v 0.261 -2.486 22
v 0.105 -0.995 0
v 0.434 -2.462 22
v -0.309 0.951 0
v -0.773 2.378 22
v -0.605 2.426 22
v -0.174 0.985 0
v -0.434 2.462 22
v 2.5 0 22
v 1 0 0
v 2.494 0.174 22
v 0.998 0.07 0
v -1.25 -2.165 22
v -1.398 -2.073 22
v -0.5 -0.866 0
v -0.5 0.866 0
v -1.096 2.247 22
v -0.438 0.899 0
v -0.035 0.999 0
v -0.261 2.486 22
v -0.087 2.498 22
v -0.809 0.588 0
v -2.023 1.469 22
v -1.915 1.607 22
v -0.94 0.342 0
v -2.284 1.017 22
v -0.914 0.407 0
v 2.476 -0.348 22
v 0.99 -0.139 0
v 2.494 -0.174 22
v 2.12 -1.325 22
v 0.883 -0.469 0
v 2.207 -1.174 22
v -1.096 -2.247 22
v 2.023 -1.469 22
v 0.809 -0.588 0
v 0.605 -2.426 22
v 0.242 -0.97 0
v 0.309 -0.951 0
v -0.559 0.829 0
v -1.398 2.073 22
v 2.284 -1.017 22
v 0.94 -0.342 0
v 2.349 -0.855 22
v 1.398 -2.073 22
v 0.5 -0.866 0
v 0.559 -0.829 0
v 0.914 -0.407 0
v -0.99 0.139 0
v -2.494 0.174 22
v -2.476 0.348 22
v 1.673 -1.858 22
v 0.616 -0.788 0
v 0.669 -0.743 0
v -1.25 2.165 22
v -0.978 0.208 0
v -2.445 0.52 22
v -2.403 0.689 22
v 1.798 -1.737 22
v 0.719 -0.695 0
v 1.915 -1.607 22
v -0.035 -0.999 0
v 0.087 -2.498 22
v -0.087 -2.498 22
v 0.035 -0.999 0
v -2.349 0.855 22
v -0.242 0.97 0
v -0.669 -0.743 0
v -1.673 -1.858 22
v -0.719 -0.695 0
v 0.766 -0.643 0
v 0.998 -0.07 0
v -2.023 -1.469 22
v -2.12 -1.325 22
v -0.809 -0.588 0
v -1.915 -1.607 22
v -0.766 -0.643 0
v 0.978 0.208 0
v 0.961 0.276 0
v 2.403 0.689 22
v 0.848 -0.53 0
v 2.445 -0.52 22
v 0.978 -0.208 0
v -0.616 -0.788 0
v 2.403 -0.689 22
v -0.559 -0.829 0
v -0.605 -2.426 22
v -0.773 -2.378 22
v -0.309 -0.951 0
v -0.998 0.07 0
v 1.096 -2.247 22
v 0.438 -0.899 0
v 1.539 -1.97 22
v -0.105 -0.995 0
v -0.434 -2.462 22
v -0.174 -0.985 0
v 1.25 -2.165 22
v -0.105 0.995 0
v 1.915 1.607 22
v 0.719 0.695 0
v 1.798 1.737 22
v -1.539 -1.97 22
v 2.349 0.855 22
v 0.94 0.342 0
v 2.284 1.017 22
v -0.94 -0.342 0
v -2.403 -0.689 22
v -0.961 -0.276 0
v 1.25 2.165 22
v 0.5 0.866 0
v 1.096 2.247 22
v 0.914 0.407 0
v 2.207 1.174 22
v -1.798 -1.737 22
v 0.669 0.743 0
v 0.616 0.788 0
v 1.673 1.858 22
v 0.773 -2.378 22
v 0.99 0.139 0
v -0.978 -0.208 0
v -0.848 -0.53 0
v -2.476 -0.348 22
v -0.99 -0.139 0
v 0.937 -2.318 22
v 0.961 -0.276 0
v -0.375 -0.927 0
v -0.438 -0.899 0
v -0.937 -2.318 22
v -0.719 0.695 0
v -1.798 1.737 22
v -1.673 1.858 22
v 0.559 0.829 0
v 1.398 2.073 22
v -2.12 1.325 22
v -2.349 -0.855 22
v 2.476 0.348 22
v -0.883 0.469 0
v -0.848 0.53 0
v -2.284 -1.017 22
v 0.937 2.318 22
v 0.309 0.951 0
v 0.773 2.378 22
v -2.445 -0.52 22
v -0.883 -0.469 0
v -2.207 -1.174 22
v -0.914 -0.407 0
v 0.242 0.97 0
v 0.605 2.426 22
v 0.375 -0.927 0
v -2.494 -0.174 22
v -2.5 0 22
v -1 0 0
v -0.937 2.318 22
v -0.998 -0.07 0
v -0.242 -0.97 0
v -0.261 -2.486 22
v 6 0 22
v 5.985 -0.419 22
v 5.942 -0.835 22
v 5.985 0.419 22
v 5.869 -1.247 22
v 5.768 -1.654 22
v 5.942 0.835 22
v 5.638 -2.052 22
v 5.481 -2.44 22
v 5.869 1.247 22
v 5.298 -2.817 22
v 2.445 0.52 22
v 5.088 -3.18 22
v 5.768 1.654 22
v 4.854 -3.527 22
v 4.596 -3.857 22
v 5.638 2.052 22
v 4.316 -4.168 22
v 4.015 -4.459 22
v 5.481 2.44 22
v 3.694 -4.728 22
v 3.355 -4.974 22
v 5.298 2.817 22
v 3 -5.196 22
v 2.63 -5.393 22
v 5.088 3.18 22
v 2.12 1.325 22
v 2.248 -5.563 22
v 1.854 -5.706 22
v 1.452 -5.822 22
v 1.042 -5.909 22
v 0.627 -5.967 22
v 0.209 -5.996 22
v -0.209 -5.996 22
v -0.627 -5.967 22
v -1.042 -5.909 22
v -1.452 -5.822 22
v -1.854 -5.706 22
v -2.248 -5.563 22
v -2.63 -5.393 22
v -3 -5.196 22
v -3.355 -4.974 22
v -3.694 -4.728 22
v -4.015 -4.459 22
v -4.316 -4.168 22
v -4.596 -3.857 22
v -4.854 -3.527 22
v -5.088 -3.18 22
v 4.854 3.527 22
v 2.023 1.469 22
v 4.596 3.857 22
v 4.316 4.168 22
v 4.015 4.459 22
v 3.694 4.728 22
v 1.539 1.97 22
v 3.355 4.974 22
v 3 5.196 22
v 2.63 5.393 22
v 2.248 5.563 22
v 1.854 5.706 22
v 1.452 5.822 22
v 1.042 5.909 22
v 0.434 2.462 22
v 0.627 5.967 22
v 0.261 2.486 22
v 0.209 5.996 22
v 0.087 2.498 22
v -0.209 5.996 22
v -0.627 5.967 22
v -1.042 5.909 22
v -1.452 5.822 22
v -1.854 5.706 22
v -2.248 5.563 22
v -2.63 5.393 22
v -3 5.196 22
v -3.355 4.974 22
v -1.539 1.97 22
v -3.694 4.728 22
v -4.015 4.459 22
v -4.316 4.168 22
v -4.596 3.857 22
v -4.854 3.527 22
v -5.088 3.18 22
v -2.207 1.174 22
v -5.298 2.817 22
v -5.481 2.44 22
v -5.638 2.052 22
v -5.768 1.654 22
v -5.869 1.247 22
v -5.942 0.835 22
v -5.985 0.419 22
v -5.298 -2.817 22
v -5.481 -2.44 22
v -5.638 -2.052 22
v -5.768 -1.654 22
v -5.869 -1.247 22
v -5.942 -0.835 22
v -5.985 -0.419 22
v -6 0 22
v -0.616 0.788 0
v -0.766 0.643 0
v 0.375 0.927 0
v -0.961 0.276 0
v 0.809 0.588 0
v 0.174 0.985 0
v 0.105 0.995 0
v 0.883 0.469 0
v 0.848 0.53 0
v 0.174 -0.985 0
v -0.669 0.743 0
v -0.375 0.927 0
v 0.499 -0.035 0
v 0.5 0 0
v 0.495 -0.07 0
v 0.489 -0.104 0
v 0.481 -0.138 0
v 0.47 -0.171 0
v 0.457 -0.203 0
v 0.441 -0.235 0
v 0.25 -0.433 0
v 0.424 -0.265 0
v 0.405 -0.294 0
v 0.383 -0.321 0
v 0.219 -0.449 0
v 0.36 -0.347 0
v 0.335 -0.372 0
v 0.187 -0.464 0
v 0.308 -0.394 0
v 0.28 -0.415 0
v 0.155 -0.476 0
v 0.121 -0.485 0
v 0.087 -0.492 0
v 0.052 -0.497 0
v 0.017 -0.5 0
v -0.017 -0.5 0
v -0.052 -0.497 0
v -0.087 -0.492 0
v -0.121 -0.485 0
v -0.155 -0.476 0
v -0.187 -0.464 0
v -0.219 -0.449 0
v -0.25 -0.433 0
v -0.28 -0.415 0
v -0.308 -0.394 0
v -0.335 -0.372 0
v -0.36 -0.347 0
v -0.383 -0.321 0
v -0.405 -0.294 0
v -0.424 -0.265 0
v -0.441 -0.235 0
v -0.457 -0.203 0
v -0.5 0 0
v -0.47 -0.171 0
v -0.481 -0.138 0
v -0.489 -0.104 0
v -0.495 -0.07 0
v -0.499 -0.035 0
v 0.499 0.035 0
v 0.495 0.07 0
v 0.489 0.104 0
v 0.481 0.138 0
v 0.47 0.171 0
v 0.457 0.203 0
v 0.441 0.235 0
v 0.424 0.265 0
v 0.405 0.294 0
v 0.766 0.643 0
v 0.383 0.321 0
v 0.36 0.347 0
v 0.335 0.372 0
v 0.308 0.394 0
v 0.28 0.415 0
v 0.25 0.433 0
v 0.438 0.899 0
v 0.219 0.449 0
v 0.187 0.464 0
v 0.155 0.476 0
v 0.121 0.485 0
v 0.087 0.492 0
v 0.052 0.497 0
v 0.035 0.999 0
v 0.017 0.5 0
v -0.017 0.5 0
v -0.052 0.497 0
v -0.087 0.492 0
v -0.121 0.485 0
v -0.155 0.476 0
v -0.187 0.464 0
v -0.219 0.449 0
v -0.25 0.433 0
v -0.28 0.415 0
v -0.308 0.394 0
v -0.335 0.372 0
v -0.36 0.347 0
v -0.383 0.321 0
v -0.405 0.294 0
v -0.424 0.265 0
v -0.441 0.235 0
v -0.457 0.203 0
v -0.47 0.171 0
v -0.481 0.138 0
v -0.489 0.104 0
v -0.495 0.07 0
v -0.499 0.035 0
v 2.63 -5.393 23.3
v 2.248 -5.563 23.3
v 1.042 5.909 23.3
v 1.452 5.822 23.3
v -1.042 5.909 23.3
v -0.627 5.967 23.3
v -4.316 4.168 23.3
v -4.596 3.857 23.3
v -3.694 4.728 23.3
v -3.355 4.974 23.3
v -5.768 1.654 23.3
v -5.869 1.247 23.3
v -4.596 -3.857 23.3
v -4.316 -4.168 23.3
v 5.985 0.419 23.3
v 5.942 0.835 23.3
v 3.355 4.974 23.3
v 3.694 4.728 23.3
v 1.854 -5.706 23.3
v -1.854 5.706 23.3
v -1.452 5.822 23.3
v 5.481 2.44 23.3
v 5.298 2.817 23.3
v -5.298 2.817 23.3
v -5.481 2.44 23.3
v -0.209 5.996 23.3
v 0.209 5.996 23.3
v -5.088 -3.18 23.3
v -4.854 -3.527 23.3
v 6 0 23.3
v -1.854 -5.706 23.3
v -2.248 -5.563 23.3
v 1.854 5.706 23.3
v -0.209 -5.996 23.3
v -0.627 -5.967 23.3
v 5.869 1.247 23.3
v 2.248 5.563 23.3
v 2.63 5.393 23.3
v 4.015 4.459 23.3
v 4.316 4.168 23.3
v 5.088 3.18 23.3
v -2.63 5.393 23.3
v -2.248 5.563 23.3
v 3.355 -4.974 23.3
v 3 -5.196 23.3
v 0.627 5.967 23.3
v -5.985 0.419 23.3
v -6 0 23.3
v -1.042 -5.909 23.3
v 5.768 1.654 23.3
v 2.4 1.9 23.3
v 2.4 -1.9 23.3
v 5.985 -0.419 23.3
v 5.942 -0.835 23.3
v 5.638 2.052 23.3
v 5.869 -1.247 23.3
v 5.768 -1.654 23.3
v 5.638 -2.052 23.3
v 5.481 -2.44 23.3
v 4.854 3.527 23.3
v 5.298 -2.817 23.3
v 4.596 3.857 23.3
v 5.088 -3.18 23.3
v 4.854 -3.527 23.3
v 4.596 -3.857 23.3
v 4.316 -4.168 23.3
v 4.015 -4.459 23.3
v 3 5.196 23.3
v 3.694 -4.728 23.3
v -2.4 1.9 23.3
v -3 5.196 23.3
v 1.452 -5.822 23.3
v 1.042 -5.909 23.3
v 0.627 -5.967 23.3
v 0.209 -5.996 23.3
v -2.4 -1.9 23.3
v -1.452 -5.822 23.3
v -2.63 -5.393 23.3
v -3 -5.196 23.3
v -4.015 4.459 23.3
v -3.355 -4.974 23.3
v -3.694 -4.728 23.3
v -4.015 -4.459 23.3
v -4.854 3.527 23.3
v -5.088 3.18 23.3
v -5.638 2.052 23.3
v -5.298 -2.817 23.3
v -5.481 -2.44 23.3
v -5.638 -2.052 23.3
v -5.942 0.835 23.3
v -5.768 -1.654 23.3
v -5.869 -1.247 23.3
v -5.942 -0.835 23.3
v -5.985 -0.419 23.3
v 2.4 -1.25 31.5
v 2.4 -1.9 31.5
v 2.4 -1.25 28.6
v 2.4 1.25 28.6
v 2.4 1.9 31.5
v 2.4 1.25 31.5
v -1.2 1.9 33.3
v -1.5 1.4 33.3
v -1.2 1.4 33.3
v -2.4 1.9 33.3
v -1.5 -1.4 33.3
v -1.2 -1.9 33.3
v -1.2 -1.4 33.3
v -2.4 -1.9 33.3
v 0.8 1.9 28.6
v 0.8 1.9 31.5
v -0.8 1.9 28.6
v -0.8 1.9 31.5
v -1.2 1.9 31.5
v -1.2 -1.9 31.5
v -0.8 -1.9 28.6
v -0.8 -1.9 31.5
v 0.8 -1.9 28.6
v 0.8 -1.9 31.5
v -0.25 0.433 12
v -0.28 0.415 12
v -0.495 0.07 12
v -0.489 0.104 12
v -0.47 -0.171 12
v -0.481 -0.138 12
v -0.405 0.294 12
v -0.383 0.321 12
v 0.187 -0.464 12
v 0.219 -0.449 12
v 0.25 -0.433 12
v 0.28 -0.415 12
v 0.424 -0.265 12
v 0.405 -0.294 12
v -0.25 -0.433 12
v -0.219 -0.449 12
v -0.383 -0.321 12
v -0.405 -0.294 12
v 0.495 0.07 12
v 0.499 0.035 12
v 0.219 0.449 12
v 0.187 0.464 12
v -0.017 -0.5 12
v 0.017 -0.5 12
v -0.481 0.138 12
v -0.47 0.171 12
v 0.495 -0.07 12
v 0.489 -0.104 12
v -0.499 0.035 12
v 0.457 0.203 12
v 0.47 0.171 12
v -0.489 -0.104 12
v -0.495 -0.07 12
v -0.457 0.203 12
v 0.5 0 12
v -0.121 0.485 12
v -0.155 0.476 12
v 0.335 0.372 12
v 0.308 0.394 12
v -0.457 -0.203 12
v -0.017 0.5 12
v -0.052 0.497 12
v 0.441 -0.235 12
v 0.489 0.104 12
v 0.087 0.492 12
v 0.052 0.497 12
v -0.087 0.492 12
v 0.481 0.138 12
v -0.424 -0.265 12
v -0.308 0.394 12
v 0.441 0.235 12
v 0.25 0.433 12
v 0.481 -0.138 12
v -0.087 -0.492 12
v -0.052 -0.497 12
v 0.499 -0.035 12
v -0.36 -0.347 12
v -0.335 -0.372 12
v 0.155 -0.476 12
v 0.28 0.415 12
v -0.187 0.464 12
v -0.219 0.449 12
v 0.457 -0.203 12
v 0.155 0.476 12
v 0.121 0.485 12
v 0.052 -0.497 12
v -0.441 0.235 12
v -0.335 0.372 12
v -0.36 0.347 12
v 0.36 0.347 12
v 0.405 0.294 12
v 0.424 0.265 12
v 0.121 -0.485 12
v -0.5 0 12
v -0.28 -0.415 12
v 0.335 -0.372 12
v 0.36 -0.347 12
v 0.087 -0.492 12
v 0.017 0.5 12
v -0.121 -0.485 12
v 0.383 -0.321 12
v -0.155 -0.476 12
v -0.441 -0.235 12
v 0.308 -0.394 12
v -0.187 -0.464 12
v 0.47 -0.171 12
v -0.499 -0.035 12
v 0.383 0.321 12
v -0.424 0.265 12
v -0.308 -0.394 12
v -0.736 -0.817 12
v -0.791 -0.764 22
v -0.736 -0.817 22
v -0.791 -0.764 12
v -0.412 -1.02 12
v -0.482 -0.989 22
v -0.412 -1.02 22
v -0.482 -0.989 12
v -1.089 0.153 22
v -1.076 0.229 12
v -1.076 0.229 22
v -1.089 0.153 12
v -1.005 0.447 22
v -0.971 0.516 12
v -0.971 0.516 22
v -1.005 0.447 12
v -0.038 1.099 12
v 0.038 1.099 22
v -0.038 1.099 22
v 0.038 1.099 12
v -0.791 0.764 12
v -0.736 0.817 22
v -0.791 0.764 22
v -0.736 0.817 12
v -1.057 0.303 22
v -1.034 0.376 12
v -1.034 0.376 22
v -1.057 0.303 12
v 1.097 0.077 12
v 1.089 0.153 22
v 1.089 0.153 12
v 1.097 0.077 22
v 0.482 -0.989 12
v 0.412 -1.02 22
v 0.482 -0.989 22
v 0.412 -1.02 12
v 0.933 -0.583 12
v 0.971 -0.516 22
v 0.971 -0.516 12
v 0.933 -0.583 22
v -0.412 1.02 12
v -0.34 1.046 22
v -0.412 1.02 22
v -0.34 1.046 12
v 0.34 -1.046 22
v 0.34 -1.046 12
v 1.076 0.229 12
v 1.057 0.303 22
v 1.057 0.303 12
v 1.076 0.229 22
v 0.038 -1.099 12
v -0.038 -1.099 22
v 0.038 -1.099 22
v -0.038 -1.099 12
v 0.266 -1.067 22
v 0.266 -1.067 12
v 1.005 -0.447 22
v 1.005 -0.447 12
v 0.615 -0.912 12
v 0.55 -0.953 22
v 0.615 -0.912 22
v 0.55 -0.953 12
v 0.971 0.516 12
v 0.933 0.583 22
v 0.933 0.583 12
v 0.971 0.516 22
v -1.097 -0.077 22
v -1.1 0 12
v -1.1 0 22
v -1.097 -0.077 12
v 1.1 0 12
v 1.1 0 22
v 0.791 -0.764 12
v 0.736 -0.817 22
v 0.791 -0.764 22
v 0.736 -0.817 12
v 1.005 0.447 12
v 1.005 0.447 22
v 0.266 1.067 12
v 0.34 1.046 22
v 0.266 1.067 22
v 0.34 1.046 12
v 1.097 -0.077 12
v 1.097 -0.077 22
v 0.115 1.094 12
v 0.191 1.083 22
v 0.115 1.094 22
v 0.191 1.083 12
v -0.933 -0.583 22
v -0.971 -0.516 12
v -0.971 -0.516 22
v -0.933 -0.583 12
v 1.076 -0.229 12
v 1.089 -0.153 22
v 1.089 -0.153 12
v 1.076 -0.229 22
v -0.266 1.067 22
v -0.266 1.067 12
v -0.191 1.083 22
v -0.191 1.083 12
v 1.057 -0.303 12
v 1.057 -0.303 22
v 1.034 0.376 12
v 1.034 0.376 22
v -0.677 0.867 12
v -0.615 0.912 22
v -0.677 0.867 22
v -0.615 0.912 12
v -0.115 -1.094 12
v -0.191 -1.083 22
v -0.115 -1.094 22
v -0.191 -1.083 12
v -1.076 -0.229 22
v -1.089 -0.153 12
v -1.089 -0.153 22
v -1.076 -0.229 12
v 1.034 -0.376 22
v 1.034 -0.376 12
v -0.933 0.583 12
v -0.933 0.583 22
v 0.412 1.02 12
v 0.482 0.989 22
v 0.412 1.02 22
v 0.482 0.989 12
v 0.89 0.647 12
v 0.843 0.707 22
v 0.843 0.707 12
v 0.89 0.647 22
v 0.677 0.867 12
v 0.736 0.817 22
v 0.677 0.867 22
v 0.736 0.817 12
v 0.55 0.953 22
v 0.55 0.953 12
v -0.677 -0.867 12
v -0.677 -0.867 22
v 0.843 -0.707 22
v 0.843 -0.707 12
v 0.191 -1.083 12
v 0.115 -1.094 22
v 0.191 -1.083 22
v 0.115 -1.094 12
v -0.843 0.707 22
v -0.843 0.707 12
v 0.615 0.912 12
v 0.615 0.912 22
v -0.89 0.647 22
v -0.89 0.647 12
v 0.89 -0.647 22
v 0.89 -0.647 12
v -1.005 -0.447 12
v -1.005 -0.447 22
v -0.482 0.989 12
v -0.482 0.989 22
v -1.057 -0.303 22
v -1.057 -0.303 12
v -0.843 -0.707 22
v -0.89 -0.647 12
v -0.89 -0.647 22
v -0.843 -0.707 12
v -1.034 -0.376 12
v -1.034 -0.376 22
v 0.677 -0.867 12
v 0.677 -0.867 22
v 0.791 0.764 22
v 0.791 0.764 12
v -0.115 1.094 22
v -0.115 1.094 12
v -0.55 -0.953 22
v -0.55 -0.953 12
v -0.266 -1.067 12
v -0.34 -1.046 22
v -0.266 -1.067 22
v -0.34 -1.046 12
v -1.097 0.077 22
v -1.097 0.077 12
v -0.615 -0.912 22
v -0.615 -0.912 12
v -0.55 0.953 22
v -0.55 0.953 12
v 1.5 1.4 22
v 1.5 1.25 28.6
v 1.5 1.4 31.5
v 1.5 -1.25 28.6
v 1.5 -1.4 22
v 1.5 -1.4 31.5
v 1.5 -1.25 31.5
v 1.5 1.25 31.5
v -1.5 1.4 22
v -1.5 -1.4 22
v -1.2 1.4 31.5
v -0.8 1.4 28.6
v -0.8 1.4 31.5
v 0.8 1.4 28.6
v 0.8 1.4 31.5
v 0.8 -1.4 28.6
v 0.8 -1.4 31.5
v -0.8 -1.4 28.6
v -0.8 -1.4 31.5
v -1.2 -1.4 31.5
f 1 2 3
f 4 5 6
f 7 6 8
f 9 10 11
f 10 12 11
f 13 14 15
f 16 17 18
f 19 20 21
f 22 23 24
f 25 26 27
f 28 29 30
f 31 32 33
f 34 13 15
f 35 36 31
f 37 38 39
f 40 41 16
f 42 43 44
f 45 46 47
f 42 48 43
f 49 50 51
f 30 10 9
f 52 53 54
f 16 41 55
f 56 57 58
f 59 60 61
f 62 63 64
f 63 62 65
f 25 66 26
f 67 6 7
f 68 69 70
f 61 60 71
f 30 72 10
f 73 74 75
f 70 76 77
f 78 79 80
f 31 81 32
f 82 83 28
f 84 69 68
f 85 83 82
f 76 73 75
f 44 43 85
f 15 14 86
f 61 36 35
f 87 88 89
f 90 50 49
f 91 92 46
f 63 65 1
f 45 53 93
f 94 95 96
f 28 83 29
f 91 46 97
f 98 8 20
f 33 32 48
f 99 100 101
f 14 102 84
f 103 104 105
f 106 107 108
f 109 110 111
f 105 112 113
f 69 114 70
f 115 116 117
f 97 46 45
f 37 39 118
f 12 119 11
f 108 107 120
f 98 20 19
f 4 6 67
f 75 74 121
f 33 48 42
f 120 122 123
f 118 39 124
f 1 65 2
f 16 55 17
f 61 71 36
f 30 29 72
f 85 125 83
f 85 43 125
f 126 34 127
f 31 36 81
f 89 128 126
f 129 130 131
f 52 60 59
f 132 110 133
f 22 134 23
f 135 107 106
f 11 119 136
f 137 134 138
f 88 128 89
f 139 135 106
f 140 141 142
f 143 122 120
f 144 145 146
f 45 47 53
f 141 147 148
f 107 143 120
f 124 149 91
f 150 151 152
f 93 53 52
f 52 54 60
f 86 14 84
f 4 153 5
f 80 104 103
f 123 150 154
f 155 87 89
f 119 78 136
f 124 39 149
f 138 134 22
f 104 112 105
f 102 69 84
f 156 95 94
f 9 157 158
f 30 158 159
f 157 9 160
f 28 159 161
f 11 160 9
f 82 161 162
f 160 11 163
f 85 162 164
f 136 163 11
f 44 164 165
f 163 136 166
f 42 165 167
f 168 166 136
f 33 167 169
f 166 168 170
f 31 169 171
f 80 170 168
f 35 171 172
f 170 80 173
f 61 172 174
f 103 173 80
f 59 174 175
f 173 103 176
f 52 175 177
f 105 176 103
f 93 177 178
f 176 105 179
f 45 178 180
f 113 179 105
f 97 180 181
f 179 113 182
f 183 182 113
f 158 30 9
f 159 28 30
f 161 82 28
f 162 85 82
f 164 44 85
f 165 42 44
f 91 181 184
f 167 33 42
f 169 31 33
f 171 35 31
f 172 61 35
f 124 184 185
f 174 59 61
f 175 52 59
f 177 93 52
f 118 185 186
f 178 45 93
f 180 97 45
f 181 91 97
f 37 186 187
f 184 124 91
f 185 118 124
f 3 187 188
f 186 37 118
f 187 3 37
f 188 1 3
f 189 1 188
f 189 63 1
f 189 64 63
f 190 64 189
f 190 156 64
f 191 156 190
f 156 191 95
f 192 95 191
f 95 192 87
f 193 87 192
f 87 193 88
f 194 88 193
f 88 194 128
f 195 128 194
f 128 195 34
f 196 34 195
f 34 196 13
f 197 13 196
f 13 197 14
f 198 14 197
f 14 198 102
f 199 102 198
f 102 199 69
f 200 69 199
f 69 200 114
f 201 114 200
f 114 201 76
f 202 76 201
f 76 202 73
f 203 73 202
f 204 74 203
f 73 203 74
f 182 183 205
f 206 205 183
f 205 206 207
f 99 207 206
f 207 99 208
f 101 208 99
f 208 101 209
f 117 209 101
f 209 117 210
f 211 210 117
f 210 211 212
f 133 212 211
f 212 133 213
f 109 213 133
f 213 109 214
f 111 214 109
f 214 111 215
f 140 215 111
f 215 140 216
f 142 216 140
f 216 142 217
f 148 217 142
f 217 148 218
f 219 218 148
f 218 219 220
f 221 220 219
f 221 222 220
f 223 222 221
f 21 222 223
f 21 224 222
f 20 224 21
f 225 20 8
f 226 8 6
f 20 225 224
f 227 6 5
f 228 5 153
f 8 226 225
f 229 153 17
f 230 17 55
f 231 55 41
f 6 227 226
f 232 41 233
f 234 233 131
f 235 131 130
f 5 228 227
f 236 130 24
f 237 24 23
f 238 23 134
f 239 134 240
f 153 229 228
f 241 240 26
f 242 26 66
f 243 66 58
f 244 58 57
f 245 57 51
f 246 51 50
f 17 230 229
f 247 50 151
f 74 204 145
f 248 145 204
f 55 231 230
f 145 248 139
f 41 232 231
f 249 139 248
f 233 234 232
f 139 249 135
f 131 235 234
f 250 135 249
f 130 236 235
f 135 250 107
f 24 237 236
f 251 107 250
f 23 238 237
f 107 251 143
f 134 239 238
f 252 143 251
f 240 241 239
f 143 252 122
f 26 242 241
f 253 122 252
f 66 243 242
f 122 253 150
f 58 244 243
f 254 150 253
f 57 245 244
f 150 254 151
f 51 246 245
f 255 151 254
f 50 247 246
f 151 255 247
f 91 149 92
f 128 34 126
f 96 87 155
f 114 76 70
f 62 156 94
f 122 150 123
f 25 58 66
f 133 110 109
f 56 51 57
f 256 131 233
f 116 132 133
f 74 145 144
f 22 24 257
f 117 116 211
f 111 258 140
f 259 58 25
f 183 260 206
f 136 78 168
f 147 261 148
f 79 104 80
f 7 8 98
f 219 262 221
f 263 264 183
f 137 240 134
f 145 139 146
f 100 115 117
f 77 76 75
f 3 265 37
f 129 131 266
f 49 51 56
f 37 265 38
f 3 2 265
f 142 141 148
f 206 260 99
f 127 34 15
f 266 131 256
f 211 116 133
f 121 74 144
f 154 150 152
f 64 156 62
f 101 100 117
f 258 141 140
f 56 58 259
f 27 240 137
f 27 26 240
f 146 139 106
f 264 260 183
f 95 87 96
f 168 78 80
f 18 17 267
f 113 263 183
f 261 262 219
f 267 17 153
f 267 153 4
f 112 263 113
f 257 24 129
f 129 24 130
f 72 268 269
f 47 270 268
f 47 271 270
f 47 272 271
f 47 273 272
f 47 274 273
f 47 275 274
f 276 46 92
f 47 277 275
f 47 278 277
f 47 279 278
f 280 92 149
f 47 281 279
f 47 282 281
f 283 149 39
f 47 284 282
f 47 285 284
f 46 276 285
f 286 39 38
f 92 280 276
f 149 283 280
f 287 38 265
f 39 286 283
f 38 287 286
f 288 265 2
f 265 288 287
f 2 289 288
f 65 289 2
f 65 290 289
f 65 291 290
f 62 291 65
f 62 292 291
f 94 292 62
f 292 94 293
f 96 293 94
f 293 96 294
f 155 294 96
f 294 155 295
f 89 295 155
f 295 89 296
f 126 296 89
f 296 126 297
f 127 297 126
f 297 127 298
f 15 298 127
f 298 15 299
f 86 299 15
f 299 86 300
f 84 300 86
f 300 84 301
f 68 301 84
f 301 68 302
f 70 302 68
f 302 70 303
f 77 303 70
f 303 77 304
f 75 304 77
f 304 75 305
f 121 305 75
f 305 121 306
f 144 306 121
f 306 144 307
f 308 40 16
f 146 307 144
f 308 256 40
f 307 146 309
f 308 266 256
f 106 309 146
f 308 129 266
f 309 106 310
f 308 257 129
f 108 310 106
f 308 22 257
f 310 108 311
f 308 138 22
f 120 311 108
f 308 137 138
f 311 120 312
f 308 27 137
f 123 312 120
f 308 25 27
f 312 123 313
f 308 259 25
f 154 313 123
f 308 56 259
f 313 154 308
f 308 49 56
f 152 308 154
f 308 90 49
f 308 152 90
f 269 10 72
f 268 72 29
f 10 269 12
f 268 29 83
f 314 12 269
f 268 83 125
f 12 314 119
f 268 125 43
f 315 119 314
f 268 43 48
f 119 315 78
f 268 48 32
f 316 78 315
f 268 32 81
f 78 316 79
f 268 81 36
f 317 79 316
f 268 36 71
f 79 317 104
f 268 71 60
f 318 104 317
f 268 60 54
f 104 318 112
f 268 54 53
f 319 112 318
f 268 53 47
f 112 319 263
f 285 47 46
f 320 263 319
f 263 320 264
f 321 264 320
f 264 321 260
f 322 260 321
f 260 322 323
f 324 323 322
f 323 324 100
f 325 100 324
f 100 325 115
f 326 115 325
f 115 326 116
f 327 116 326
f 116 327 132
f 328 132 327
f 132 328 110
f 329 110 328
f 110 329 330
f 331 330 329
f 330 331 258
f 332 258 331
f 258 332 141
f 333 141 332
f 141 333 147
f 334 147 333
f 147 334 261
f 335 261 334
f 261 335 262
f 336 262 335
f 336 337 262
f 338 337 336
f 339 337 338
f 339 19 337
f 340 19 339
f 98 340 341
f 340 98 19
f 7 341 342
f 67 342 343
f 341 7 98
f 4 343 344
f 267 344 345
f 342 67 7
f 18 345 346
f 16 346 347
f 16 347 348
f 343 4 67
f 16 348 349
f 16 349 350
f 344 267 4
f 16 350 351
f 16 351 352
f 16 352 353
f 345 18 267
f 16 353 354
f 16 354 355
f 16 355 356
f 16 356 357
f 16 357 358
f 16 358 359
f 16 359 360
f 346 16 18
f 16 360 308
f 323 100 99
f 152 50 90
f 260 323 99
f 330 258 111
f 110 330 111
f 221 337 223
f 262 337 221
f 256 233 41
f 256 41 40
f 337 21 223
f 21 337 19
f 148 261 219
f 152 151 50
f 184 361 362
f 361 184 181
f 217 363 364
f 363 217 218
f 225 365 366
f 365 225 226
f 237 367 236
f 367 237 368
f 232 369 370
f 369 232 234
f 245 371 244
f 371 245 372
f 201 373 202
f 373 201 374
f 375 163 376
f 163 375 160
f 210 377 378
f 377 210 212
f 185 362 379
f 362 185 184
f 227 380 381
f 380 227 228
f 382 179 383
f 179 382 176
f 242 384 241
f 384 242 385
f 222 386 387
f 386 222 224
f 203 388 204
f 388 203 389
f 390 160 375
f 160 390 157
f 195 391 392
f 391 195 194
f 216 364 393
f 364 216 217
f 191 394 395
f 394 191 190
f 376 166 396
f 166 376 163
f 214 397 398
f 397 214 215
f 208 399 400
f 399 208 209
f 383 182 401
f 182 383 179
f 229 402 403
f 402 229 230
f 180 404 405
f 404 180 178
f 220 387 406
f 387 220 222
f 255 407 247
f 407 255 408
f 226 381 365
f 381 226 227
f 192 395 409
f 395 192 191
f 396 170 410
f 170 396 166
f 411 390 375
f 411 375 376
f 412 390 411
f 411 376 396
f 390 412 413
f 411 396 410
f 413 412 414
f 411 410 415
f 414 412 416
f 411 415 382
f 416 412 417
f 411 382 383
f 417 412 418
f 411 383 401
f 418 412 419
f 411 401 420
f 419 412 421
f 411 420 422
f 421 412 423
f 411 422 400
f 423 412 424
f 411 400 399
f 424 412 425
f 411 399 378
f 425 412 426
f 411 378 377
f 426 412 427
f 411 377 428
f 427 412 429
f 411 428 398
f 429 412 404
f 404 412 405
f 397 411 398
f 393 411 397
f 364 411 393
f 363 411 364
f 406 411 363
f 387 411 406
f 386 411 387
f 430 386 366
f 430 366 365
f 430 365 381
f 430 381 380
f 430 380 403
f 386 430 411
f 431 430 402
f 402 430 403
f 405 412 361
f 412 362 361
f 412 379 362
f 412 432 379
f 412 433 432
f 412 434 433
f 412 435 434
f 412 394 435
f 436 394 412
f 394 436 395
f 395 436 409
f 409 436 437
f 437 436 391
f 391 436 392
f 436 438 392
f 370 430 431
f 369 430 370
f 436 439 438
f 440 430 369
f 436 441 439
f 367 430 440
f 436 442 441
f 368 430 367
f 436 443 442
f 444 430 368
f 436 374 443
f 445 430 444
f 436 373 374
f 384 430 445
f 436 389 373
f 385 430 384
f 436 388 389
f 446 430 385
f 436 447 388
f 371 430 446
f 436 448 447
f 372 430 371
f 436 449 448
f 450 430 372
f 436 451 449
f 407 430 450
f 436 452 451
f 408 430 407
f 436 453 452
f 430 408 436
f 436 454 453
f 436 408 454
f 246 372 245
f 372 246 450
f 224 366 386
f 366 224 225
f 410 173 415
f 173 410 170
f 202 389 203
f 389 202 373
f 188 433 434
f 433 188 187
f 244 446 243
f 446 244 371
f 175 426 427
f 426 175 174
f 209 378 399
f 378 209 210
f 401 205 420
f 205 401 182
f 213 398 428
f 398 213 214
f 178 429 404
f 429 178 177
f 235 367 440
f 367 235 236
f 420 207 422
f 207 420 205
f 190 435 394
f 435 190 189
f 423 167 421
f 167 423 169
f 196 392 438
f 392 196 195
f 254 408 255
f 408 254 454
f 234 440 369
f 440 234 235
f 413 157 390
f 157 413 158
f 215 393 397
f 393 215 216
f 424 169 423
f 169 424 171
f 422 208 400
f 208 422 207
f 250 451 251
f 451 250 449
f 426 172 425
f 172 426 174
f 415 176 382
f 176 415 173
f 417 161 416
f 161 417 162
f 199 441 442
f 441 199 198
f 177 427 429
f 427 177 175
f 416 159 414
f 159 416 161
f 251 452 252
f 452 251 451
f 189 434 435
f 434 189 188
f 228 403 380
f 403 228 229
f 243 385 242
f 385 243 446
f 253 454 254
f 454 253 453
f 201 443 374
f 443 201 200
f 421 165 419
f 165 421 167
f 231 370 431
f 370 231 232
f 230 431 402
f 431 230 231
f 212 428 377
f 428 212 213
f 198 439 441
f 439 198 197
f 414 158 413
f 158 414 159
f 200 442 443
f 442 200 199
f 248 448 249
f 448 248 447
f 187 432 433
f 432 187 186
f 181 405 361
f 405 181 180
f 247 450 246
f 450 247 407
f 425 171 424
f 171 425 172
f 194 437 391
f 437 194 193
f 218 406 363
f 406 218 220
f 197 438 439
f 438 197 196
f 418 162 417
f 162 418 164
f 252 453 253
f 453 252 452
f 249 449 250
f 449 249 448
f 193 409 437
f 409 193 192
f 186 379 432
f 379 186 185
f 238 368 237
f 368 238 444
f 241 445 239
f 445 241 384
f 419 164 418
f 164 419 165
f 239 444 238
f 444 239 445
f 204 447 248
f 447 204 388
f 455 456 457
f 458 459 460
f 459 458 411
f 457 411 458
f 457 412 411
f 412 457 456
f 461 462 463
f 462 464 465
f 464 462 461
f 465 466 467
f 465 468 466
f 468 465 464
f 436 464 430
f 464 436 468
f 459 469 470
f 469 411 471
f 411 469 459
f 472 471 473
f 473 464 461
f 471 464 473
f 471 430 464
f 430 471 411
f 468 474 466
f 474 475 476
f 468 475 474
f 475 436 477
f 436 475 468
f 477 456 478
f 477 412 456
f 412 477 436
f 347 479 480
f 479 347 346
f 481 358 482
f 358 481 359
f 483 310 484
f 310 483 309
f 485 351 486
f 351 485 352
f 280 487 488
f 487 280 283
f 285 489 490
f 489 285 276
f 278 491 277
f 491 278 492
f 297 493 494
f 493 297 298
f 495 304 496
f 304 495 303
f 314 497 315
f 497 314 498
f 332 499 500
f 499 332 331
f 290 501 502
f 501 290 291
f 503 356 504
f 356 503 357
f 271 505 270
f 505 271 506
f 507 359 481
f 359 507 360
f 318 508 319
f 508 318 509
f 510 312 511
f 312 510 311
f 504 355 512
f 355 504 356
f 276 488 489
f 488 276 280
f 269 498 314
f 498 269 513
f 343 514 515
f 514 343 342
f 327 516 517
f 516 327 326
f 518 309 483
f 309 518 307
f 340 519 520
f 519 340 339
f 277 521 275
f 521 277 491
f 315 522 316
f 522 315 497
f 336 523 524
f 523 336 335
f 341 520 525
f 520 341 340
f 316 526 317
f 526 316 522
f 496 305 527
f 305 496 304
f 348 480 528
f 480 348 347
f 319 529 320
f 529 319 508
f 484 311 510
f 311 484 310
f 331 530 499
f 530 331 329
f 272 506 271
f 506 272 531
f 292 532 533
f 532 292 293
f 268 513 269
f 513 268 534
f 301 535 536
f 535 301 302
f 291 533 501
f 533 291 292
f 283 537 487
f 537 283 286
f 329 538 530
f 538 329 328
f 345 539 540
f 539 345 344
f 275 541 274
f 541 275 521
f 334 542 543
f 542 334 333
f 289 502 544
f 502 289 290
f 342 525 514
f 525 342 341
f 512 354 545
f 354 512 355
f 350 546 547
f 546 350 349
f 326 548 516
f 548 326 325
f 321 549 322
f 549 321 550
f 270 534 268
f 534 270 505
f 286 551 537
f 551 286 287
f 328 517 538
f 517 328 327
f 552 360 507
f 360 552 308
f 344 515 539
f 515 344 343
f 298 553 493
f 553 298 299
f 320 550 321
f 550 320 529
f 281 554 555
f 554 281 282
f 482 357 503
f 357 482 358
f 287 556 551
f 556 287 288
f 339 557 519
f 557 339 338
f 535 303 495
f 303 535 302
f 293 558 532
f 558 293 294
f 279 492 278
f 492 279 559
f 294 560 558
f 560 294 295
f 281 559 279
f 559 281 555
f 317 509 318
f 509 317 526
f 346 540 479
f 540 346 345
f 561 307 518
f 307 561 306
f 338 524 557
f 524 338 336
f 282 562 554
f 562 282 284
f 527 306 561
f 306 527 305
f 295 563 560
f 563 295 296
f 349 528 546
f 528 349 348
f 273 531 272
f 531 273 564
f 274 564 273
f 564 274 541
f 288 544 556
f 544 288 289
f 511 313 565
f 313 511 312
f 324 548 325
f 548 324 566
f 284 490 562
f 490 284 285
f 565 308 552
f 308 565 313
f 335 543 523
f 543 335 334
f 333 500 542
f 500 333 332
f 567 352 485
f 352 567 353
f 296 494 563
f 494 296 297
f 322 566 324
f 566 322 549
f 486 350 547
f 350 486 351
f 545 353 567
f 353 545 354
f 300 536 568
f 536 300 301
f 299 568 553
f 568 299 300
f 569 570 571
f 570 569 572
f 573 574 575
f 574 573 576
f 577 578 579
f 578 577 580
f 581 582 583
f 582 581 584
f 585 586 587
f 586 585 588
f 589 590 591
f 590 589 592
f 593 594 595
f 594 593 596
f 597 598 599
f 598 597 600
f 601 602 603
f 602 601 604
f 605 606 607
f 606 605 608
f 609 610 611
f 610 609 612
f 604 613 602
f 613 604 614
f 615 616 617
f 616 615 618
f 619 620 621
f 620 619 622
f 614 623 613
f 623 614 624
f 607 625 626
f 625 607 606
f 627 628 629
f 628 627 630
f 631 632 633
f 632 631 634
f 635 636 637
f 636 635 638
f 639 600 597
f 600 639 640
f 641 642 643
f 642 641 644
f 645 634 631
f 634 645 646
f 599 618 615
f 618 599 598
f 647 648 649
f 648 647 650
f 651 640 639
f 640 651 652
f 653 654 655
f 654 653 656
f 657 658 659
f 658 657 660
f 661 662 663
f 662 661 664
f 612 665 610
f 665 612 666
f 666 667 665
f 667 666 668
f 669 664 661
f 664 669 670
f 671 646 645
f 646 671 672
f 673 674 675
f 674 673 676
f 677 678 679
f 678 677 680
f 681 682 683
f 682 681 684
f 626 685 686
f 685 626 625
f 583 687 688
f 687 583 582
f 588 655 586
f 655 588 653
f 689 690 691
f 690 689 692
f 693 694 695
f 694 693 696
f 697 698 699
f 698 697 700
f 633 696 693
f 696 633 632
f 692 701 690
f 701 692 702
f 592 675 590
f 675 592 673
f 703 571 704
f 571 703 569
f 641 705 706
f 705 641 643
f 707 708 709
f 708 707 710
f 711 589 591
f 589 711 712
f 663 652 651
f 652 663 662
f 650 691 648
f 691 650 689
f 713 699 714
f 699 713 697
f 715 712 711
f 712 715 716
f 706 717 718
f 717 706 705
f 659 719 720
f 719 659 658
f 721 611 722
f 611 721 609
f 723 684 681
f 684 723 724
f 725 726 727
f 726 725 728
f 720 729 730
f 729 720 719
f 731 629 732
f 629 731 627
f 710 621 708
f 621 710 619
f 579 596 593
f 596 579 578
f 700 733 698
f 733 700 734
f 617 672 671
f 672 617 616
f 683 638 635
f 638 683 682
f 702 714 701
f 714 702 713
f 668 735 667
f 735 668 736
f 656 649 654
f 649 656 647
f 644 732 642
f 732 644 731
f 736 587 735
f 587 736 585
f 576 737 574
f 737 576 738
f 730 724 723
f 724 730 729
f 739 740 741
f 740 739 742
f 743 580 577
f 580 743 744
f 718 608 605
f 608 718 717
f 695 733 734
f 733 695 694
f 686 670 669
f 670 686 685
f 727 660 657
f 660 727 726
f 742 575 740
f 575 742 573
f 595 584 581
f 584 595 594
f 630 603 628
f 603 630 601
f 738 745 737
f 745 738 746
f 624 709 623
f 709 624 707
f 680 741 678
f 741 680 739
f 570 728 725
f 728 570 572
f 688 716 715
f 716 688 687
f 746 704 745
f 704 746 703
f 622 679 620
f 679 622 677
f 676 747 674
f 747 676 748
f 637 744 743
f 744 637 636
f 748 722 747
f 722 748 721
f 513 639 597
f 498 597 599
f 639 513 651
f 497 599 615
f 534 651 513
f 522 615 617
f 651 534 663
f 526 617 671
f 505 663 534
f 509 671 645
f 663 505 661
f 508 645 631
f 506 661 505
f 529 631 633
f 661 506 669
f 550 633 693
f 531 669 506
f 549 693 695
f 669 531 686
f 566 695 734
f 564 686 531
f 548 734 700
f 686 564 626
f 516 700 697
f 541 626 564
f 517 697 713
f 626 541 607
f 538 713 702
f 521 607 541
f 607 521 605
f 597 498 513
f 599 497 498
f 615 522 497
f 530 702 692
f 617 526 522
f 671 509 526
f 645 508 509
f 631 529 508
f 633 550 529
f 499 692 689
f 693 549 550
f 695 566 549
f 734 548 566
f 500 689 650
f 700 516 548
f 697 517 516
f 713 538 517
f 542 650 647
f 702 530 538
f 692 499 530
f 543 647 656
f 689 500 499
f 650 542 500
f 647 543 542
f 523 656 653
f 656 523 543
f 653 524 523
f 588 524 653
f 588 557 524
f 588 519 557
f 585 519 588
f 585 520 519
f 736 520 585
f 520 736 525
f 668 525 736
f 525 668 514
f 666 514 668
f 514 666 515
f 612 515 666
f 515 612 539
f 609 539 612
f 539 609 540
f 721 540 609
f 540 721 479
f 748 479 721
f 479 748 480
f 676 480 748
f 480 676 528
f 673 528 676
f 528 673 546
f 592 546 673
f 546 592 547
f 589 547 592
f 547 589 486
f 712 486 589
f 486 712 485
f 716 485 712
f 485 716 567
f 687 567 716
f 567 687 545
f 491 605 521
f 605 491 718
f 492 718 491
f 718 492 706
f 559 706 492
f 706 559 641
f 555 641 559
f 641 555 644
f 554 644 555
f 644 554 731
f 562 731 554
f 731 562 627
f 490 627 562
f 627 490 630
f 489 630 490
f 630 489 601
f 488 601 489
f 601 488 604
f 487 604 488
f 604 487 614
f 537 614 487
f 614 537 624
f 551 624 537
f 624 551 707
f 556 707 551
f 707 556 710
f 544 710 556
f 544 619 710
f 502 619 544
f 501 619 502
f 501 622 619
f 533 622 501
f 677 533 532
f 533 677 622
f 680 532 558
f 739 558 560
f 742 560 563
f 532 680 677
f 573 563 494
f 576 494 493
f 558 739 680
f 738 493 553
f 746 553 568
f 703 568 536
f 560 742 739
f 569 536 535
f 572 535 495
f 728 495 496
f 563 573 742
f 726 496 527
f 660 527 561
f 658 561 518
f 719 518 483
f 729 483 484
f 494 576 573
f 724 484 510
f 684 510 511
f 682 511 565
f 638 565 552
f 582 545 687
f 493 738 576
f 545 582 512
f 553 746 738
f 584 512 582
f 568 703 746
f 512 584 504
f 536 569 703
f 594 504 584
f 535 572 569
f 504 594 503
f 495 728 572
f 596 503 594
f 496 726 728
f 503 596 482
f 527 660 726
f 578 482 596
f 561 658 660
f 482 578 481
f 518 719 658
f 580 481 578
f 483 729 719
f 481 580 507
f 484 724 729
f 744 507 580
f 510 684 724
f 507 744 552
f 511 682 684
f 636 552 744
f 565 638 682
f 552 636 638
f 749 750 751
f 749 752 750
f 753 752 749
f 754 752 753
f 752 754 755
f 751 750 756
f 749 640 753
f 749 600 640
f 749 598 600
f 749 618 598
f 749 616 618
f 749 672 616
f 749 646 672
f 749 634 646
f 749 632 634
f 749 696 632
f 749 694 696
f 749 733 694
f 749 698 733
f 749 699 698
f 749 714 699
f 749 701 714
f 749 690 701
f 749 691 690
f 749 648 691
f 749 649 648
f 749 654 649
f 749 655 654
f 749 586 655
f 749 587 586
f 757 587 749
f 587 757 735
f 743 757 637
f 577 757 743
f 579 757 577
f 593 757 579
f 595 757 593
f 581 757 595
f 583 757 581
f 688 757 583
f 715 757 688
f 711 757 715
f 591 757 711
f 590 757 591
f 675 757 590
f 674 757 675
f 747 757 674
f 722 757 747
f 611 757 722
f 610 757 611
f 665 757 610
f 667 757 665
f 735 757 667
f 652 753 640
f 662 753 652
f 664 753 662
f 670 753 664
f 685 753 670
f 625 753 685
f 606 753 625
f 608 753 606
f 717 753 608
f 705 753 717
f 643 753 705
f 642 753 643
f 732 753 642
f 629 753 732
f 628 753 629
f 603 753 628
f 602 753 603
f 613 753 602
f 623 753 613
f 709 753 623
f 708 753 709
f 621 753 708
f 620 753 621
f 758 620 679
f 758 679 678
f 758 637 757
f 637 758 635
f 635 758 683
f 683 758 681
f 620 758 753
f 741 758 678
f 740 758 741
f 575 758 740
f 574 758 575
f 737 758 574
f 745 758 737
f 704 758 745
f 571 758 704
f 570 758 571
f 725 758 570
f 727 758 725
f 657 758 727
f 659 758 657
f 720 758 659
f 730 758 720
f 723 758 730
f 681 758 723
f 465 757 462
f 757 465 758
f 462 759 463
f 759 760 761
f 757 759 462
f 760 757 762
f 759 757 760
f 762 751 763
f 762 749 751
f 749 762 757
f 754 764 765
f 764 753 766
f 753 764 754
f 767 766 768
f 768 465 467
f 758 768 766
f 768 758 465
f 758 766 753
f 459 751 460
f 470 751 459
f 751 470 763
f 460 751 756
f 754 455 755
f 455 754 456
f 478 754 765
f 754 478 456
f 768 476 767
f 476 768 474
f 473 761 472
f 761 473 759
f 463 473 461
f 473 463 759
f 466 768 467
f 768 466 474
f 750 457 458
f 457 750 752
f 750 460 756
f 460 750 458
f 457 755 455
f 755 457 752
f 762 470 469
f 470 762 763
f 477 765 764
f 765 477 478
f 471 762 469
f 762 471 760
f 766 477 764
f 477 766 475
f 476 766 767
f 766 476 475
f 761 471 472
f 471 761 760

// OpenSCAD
$fn = 90;
coneLength = 22;
plateHeight = 1.3;
cubeHeight = 10;

difference(){
	union(){
		cylinder(d1=2, d2=5, h=coneLength);
		translate([0, 0, coneLength])
			cylinder(d=12, h=plateHeight);
		translate([0, 0, coneLength+plateHeight+cubeHeight/2])
			cube([4.8, 3.8, cubeHeight], center=true);
	}
	#cylinder(d=1, h=coneLength);
	#translate([0, 0, 12])
		cylinder(d=2.2, h=coneLength-12+plateHeight);
	
	#translate([0, 0, coneLength+(plateHeight+cubeHeight)/2])
		cube([3, 2.8, plateHeight+cubeHeight], center=true);
	
	#translate([0.6, 0, coneLength+plateHeight+cubeHeight-1.8/2])
		cube([3.6, 3.8, 1.8], center=true);
	
	#translate([0.6, 0, coneLength+plateHeight+cubeHeight-4.7/2])
		cube([3.6, 2.5, 4.7], center=true);
	
	#translate([0, 0, coneLength+plateHeight+cubeHeight-4.7/2])
		cube([1.6, 3.8, 4.7], center=true);
}
